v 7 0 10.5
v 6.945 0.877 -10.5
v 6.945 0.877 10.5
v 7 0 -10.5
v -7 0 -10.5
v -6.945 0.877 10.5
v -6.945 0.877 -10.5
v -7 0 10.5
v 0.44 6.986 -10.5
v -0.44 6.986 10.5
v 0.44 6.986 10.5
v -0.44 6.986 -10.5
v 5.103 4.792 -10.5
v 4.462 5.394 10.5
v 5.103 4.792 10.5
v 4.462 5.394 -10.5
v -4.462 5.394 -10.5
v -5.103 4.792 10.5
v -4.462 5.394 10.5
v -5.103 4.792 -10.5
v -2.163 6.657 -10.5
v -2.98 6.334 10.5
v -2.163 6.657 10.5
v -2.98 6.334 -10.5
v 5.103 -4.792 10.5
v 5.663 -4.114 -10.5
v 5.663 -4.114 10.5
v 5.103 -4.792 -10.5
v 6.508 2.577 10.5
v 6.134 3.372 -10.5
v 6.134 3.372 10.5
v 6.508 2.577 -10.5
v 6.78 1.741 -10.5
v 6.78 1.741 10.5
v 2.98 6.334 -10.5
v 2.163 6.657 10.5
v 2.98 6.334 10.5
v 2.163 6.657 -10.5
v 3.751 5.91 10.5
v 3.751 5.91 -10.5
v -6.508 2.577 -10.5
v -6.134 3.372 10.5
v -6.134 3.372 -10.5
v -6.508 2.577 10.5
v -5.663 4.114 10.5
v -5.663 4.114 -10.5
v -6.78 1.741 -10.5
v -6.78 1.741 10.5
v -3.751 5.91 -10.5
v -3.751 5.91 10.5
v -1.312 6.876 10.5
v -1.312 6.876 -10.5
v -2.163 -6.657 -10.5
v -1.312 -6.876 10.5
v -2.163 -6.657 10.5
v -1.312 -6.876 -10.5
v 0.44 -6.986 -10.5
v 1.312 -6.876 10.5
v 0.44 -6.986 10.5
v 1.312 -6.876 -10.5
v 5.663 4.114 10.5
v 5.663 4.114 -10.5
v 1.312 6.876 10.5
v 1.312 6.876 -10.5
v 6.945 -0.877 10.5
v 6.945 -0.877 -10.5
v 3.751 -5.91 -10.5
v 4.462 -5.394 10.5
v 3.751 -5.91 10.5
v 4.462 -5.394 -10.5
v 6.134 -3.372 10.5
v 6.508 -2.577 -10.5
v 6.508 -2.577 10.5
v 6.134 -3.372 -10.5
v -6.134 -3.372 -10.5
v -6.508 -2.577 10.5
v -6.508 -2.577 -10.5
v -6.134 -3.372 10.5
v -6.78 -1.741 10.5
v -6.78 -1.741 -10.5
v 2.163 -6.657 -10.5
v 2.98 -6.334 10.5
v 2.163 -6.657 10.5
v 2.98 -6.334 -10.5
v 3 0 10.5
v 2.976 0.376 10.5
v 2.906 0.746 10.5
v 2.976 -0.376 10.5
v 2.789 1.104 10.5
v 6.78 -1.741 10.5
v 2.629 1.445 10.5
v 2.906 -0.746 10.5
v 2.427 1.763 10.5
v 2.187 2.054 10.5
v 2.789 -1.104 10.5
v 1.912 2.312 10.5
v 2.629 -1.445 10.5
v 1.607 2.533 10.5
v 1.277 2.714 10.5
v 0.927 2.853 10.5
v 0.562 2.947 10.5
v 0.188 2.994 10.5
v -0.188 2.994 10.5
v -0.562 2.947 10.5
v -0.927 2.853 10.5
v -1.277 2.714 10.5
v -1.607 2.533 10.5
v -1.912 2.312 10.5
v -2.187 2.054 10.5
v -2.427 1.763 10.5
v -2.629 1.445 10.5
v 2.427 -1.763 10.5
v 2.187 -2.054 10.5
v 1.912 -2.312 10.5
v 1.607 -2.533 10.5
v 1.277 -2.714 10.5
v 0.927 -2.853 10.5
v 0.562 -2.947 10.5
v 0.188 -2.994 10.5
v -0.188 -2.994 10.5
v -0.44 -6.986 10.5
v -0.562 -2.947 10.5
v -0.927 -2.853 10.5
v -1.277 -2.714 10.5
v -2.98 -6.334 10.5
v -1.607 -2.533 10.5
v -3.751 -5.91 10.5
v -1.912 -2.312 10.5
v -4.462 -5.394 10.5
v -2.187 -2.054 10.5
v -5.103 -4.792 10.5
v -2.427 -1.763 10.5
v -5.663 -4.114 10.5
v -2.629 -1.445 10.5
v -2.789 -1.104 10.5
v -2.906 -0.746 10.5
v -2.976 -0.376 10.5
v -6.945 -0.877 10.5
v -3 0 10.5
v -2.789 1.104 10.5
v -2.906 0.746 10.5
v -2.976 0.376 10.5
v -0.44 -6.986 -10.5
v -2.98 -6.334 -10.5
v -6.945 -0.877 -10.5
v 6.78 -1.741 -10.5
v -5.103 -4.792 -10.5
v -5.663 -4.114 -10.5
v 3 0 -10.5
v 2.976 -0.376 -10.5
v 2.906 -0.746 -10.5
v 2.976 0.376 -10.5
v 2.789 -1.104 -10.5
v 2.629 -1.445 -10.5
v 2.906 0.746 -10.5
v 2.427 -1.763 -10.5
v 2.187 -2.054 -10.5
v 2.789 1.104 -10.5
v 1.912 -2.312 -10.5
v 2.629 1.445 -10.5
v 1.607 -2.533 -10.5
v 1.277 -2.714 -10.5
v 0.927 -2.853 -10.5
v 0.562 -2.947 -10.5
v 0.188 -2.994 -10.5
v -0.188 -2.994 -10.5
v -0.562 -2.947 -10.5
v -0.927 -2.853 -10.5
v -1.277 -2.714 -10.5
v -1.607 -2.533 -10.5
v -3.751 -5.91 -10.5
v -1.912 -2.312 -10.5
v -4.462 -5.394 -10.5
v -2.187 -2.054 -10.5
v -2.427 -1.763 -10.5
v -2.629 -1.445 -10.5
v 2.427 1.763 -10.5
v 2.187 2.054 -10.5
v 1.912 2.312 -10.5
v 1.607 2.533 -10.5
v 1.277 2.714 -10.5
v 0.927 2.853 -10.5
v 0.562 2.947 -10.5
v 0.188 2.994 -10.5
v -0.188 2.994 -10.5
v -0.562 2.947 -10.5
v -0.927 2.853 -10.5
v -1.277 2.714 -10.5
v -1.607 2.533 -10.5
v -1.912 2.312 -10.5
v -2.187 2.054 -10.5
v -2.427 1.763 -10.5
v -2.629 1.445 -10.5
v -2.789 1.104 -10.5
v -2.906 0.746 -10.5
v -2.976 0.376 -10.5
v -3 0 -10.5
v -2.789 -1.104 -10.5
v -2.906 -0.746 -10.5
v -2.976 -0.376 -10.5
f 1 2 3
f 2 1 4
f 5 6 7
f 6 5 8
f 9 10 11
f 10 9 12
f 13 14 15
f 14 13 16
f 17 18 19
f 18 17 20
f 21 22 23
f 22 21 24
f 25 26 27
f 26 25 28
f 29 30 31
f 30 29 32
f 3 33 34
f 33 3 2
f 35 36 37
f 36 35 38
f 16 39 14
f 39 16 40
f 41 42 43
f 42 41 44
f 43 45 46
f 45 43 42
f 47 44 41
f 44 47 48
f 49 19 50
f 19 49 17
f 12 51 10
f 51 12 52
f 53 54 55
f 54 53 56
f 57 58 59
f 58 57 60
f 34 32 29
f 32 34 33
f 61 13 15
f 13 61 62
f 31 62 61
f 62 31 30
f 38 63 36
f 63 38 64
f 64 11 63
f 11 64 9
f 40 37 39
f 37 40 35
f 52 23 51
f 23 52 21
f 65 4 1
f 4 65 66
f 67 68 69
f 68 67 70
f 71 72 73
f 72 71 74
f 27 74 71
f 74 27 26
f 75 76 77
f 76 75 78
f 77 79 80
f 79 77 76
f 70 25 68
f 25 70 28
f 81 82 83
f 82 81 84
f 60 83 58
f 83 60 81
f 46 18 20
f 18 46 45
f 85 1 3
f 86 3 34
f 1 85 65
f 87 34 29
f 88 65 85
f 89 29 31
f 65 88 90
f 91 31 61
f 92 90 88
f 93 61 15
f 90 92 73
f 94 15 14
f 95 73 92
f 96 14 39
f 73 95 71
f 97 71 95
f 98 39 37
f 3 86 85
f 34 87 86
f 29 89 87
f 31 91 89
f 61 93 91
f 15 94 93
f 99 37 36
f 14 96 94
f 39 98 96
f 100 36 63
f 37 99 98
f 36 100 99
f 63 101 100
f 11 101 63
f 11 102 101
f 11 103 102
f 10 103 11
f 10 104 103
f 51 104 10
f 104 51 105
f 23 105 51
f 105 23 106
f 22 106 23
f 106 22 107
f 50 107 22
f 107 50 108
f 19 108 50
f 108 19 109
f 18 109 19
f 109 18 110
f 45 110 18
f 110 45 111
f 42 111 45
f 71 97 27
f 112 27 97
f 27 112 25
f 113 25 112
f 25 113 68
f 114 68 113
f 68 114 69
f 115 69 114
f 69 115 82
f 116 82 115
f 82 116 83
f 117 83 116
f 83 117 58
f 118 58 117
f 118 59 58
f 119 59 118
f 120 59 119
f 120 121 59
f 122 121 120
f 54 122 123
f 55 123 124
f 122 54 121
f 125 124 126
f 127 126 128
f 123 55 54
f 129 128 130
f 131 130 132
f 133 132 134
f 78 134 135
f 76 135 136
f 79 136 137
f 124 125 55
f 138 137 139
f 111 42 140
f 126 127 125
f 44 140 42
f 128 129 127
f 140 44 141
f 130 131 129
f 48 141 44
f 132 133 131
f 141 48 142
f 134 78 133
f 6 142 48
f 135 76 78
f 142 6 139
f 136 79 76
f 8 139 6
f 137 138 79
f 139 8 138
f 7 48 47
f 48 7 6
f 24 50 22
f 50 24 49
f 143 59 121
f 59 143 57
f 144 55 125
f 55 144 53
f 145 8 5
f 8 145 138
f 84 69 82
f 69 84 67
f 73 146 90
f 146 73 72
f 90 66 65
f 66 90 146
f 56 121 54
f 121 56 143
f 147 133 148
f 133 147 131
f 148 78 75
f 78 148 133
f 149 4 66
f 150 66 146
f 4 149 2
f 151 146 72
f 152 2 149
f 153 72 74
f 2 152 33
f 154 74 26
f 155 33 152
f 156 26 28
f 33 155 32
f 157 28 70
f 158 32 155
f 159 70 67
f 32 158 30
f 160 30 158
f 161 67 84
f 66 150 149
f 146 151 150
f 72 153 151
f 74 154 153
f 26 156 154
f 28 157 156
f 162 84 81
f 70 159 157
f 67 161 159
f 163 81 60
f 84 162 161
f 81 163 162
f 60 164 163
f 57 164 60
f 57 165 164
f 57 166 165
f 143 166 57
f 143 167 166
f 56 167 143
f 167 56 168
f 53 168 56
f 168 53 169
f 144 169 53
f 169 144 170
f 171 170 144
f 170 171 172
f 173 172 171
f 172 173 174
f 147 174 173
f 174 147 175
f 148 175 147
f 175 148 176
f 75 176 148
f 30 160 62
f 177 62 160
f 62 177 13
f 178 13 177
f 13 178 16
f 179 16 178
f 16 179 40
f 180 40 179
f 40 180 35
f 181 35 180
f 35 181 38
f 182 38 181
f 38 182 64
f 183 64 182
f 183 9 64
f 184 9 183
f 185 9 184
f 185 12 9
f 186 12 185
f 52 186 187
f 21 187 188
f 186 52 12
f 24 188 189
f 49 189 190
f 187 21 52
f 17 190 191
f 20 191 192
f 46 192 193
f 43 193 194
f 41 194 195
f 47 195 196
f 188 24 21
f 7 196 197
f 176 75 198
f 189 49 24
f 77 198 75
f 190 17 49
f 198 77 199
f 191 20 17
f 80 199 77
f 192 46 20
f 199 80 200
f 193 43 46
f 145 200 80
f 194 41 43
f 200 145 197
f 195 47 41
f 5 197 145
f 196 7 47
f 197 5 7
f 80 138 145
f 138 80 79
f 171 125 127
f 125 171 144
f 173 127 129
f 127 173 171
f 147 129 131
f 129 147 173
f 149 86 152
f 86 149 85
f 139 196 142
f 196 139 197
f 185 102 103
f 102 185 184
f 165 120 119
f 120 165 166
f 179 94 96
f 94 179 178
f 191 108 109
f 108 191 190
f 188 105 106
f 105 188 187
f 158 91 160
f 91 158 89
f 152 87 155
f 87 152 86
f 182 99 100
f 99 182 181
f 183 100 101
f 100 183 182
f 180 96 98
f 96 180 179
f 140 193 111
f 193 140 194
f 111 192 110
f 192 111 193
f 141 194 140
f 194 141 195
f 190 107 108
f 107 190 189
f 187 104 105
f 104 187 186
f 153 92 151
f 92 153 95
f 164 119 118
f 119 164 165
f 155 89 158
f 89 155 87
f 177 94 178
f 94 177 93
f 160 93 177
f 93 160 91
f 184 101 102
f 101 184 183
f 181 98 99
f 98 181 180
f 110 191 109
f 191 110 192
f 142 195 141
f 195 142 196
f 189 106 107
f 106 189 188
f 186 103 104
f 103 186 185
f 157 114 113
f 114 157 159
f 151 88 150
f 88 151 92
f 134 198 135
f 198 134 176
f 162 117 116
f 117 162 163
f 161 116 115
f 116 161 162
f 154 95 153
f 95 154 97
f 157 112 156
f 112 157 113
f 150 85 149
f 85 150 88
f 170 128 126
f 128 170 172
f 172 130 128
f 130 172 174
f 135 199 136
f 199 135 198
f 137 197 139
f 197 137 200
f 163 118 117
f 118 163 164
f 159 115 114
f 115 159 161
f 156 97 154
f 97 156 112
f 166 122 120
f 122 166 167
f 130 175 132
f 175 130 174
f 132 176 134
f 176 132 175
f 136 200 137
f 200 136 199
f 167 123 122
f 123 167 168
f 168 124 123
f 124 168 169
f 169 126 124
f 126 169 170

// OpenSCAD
$fn = 50;


difference() {
	union() {
		translate(v = [0, 0, -10.5000000000]) {
			cylinder(h = 21, r = 7.0000000000);
		}
	}
	union() {
		translate(v = [0, 0, -100.0000000000]) {
			cylinder(h = 200, r = 3.0000000000);
		}
	}
}
